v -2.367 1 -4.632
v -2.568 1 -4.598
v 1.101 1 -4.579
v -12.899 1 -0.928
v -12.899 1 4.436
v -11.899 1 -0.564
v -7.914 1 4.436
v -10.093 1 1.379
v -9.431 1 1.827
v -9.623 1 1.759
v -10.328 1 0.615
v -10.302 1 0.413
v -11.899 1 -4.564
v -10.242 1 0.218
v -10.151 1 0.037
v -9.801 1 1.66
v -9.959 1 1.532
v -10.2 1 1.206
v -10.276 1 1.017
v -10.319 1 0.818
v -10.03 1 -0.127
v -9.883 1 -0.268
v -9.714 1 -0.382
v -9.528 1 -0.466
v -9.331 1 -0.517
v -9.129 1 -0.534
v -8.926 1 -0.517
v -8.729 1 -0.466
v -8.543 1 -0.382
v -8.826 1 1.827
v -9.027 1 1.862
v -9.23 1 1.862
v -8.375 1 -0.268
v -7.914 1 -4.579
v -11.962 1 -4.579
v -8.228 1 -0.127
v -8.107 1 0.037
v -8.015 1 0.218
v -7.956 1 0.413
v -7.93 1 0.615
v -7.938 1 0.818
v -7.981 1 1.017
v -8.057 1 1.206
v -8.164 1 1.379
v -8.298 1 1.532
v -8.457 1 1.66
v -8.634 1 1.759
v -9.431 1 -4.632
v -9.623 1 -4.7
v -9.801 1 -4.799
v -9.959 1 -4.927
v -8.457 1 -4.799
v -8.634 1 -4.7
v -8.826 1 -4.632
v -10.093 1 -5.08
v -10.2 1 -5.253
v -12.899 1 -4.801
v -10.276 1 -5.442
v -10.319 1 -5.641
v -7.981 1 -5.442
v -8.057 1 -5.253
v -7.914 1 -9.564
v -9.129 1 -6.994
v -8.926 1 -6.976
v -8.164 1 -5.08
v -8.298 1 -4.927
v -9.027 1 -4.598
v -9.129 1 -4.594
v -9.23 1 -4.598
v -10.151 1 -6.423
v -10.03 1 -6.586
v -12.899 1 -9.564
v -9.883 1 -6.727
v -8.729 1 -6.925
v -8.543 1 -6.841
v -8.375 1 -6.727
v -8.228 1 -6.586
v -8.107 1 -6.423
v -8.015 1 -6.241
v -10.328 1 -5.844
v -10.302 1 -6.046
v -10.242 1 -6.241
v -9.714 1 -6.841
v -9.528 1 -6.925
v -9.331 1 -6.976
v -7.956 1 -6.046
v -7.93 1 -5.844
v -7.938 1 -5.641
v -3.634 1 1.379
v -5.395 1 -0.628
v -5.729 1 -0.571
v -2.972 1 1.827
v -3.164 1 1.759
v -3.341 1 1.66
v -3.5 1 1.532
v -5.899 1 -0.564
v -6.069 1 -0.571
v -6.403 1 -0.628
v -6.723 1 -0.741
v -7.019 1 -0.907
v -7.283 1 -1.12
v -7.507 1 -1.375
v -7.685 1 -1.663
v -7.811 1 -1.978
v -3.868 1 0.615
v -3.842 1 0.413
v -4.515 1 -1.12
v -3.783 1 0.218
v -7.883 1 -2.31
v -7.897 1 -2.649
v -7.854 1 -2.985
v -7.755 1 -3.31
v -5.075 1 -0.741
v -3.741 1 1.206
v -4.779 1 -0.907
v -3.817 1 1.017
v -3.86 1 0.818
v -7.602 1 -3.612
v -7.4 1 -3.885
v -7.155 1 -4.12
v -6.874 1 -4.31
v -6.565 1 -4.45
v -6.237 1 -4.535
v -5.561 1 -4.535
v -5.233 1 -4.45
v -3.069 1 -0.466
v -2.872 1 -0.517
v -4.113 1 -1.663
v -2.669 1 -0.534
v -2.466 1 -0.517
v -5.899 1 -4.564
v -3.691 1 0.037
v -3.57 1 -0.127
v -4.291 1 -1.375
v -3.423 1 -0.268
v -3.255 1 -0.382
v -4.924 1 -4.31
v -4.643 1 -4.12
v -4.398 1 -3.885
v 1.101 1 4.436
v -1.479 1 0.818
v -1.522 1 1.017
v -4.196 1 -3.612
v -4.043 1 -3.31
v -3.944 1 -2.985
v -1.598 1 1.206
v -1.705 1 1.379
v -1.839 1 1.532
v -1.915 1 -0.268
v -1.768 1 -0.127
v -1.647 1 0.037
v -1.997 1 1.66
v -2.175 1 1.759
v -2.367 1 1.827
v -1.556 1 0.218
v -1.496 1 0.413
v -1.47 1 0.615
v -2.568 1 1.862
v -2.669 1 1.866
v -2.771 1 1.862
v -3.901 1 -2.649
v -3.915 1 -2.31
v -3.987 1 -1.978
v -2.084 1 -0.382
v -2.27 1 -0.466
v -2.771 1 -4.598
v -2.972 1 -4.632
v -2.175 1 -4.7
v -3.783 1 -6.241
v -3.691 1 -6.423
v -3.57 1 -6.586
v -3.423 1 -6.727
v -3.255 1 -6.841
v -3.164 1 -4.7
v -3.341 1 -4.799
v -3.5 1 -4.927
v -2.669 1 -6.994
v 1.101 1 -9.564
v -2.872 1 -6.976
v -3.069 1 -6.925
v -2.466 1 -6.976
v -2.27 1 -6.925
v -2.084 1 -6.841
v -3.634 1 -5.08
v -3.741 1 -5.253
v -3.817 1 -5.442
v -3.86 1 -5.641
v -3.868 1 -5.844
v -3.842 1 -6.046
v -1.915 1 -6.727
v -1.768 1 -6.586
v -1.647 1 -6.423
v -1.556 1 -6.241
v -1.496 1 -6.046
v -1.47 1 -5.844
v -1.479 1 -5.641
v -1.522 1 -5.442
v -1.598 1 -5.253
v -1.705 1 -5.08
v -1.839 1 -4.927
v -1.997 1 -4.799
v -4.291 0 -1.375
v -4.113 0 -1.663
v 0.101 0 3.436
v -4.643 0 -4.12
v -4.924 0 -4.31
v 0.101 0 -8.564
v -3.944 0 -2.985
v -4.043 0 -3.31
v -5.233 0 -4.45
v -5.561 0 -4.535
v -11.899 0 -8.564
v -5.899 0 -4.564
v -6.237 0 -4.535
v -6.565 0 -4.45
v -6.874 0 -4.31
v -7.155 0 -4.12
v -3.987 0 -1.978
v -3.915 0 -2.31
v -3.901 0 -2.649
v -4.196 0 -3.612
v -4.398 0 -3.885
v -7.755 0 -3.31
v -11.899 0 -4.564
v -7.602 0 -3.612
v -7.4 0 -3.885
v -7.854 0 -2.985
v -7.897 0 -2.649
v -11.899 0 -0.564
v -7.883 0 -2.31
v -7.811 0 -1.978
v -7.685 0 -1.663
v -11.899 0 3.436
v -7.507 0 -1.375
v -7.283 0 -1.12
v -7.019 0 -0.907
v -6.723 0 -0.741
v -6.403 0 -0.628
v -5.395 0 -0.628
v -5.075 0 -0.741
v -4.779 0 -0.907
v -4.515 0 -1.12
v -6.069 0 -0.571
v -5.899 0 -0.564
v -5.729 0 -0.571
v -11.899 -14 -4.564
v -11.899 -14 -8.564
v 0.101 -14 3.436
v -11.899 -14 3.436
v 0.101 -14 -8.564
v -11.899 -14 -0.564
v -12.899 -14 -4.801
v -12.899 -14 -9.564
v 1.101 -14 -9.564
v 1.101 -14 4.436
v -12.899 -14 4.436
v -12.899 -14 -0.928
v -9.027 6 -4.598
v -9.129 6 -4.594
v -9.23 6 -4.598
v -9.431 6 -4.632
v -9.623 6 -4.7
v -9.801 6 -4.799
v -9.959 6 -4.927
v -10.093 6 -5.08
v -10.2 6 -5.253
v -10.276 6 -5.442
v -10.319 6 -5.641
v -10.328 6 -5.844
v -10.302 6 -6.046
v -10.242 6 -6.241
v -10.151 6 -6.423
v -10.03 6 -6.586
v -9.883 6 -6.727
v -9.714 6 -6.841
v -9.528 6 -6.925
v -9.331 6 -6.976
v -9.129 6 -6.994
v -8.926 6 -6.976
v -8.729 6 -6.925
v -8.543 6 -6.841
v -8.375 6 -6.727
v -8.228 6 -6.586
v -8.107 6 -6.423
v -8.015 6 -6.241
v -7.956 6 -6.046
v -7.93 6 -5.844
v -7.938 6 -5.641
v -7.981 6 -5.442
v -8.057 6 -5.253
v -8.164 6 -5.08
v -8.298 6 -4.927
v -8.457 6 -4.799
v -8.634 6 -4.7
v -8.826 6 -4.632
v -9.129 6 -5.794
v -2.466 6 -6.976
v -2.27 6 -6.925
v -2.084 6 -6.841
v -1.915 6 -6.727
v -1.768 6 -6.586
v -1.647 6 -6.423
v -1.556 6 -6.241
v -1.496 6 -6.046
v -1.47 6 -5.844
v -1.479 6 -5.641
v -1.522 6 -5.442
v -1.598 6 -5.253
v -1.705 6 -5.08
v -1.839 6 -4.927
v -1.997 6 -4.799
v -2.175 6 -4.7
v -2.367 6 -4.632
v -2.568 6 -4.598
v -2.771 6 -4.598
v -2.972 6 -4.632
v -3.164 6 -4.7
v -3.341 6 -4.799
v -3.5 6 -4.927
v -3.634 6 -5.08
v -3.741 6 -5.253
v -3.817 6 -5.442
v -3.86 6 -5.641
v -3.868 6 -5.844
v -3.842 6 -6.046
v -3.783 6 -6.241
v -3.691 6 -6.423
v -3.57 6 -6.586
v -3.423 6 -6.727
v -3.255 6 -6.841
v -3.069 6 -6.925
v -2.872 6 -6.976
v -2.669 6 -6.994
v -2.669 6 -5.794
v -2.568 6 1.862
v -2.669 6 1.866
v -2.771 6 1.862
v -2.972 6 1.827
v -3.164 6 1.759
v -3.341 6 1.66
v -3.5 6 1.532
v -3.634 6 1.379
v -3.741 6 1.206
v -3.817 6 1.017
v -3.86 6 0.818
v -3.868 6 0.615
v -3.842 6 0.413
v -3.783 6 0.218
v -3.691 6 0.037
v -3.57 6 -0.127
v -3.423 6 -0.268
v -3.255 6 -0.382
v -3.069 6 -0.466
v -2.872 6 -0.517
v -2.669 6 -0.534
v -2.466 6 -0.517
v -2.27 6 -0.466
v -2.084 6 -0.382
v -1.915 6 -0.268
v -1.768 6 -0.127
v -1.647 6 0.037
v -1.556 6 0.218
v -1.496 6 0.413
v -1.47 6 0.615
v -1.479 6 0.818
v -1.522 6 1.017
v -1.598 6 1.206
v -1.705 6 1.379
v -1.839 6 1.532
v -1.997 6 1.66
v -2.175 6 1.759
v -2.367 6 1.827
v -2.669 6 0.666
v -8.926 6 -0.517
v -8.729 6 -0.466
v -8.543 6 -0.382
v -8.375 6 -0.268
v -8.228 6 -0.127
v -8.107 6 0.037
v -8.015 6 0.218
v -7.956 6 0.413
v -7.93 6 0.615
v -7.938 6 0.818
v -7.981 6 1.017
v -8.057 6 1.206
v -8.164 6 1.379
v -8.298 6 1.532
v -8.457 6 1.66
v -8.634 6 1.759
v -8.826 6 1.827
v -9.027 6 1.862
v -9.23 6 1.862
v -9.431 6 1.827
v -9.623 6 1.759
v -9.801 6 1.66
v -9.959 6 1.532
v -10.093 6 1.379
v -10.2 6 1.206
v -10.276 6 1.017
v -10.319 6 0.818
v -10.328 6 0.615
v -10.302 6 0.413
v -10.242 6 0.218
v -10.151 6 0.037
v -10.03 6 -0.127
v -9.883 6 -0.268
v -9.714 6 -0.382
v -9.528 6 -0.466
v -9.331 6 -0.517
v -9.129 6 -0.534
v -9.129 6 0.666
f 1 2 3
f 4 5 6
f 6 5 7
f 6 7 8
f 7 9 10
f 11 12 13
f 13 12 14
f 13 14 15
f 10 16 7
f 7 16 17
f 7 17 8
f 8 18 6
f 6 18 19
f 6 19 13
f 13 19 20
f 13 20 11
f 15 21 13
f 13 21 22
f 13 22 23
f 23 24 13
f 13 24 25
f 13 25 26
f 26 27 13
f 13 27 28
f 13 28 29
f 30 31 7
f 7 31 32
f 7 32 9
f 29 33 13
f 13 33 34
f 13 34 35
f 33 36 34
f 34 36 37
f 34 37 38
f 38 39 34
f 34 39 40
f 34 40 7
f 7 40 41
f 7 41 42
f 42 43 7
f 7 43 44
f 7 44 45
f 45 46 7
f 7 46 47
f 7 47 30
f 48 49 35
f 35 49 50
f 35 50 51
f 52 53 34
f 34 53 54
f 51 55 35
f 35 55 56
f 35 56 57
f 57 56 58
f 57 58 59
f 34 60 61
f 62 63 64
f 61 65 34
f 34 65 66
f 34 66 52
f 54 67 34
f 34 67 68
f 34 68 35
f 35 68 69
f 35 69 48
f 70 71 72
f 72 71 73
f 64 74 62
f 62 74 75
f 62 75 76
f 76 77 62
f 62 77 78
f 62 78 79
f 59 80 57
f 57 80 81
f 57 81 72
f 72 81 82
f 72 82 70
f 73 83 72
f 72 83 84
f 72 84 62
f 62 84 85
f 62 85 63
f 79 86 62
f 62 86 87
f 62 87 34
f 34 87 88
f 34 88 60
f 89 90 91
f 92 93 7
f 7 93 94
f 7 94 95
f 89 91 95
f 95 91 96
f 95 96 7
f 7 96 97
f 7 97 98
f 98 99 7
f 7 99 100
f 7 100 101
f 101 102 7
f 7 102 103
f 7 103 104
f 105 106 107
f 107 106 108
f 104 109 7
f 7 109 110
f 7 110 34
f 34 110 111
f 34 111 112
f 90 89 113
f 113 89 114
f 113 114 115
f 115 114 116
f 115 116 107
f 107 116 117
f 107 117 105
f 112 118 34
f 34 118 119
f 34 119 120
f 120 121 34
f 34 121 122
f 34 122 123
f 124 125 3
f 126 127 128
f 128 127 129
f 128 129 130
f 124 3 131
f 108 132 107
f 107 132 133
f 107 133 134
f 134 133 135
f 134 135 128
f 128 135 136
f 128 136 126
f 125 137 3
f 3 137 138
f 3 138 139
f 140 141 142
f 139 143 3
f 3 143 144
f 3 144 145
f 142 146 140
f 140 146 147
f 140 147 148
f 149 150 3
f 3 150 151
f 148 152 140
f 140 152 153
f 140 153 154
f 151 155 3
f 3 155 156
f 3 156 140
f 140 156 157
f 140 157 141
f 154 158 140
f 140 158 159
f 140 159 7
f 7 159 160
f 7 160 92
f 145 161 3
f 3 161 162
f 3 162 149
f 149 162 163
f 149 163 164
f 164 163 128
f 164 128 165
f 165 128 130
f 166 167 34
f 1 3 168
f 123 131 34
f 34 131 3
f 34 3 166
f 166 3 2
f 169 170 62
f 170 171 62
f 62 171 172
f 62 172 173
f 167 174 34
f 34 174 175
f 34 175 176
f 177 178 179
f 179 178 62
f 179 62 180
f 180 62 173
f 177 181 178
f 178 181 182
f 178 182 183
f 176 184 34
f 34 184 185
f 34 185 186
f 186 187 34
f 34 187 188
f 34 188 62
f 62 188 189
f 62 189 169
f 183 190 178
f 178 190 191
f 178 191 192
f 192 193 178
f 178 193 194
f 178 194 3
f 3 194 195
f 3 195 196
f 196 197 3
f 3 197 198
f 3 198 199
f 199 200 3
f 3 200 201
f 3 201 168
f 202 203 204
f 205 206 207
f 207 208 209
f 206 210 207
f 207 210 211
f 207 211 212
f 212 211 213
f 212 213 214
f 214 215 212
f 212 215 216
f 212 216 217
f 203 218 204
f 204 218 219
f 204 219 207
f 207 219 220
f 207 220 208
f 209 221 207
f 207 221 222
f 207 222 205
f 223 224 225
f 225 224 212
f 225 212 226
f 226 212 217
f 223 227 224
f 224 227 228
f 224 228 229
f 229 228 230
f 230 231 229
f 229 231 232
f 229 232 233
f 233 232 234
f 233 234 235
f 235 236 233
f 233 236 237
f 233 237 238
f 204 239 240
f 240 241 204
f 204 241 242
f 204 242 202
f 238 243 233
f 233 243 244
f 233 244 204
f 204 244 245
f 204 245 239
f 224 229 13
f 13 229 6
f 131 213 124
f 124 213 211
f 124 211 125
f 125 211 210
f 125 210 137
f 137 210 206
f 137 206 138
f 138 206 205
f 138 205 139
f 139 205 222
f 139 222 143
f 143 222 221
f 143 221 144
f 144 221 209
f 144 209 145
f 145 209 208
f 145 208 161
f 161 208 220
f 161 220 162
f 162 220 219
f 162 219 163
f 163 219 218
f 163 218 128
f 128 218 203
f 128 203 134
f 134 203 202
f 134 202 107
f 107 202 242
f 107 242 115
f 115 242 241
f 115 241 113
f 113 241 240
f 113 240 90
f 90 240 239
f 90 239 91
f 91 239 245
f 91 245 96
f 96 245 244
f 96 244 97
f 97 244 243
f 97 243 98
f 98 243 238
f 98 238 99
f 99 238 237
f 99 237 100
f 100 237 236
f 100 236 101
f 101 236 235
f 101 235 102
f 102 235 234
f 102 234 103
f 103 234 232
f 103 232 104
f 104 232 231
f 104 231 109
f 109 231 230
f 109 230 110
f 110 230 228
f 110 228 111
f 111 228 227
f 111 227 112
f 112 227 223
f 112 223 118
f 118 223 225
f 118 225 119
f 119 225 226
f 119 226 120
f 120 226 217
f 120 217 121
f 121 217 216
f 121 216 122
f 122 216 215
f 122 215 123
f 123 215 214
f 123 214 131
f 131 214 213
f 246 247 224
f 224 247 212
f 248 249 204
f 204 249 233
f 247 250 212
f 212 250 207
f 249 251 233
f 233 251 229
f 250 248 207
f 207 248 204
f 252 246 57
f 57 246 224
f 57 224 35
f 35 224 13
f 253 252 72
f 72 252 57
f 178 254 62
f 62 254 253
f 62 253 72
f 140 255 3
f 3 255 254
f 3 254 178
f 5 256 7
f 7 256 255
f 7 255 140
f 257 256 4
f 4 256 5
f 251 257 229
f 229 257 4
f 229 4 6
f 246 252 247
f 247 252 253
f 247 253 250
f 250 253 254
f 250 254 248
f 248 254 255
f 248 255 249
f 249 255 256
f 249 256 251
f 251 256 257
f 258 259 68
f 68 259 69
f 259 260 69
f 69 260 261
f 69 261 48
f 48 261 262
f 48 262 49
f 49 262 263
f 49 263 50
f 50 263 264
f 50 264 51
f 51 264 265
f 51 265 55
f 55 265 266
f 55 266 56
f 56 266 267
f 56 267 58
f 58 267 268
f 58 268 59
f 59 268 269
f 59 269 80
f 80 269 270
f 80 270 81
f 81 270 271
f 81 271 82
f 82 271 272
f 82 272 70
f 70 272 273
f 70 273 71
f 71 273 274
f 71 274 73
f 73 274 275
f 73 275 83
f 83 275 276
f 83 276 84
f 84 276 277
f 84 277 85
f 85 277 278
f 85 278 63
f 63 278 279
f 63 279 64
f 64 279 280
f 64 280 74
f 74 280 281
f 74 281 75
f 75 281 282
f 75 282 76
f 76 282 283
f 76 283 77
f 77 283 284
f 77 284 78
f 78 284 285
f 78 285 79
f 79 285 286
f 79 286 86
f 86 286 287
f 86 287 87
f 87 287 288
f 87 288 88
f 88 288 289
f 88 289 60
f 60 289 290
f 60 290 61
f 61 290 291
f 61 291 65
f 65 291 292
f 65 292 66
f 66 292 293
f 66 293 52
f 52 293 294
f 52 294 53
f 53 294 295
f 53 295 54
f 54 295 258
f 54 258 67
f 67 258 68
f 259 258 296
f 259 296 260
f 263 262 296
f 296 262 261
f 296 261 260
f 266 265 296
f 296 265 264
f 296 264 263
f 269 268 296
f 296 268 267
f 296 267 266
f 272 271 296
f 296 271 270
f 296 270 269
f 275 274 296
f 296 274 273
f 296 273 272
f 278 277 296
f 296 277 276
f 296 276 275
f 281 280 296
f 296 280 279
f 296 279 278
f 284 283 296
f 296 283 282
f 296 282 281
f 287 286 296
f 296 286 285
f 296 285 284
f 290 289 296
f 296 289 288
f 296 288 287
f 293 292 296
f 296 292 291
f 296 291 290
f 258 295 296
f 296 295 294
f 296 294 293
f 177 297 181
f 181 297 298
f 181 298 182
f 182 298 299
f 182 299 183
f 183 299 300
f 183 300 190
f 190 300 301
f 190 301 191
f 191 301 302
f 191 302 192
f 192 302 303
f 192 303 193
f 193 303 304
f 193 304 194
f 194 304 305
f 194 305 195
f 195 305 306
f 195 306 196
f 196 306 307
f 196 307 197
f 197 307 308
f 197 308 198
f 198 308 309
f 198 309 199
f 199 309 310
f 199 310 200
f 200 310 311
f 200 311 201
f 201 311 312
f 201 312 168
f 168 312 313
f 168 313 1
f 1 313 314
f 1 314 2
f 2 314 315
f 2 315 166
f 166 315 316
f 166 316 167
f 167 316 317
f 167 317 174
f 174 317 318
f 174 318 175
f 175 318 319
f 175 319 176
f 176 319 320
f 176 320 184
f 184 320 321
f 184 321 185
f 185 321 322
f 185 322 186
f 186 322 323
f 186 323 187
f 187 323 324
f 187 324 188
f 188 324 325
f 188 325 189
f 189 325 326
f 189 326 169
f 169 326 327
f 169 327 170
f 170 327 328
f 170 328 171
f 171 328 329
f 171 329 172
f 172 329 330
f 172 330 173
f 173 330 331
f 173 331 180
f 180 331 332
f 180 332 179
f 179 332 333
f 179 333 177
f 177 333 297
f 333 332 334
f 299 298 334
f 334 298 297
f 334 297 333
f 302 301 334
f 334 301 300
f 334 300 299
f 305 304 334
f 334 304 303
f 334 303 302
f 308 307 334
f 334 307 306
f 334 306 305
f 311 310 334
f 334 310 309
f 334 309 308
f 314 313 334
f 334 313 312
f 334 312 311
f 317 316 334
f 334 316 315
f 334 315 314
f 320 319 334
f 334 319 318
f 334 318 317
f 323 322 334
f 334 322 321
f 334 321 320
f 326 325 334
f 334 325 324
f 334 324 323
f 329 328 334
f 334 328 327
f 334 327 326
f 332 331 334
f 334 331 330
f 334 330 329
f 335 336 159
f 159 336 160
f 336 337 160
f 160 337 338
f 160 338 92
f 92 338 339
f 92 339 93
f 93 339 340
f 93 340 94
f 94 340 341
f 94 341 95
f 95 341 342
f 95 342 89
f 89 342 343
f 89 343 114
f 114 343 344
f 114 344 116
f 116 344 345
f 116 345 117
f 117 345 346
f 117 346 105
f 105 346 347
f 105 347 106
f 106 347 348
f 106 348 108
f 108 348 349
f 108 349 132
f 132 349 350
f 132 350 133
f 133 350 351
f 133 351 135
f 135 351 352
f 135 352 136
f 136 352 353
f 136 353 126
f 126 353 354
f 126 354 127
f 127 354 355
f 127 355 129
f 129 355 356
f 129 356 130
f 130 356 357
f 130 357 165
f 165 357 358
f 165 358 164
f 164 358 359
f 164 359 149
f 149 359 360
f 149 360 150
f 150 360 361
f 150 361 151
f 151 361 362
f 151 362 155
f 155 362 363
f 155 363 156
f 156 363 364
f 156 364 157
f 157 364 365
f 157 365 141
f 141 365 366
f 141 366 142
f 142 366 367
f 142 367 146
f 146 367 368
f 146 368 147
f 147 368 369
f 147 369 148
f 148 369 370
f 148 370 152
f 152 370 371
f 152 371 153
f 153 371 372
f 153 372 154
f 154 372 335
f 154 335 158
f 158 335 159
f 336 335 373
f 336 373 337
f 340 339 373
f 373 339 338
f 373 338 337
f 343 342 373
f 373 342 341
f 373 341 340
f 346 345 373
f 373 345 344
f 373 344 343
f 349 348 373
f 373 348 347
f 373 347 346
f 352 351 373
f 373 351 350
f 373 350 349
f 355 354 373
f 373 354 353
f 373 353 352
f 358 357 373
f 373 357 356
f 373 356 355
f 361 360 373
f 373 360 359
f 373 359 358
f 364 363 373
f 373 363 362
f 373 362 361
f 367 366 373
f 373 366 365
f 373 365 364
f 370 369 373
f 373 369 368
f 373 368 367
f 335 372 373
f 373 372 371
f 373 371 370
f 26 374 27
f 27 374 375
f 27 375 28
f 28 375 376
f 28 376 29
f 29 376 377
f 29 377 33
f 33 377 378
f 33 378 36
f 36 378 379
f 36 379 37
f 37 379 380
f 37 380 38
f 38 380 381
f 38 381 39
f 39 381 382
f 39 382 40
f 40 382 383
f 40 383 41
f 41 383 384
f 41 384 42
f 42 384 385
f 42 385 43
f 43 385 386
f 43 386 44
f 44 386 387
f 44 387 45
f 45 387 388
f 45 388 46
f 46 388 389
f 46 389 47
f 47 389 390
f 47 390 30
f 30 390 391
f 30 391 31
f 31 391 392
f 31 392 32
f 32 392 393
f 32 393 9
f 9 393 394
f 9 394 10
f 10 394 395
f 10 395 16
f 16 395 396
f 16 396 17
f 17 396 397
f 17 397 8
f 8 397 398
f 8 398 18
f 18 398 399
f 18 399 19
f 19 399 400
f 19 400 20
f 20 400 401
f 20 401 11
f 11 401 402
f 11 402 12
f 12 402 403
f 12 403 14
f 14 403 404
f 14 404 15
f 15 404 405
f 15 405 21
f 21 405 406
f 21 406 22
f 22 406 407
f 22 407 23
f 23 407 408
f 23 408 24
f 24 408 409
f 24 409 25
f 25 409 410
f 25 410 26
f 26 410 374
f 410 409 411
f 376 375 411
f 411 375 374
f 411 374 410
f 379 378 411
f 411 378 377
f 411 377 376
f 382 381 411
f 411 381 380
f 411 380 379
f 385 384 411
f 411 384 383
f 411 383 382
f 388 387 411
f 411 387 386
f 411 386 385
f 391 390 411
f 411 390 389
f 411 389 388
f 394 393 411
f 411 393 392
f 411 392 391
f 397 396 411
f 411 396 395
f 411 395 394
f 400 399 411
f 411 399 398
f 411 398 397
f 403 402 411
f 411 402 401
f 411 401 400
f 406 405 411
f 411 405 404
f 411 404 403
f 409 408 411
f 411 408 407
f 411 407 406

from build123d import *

# Parameters (mm, degrees)
SKETCH1_W           = 12
SKETCH1_H           = 12
SKETCH1_R           = 2
BOSS_EXTRUDE2_DEPTH = 1
BOSS_EXTRUDE5_DEPTH = 15
SKETCH4_R           = 1.2
BOSS_EXTRUDE6_DEPTH = 5


with BuildPart() as part:
    # Sketch1 → Boss-Extrude2 (new body)
    with BuildSketch(Plane(origin=(0, 0, 0), x_dir=(1, 0, 0), z_dir=(0, 1, 0))):
        with Locations((-5.898996881, 2.563822752)):
            Rectangle(SKETCH1_W, SKETCH1_H)
        with Locations((-5.898996881, 2.563822752)):
            Circle(SKETCH1_R, mode=Mode.SUBTRACT)
    extrude(amount=BOSS_EXTRUDE2_DEPTH)

    # Sketch3 → Boss-Extrude5 (add)
    with BuildSketch(Plane(origin=(0, 1, 0), x_dir=(1, 0, 0), z_dir=(0, 1, 0))):
        Polygon((-12.898996881, -4.436177248), (-12.898996881, 0.92811169), (-11.898996881, 0.563822752), (-11.898996881, -3.436177248), (0.101003119, -3.436177248), (0.101003119, 8.563822752), (-11.898996881, 8.563822752), (-11.898996881, 4.563822752), (-12.898996881, 4.800920569), (-12.898996881, 9.563822752), (1.101003119, 9.563822752), (1.101003119, -4.436177248), align=None)
    extrude(amount=-BOSS_EXTRUDE5_DEPTH)

    # Sketch4 → Boss-Extrude6 (add)
    with BuildSketch(Plane(origin=(0, 1, 0), x_dir=(1, 0, 0), z_dir=(0, 1, 0))):
        with Locations((-9.128696242, 5.793522112)):
            Circle(SKETCH4_R)
        with Locations((-2.66929752, 5.793522112)):
            Circle(SKETCH4_R)
        with Locations((-2.66929752, -0.665876609)):
            Circle(SKETCH4_R)
        with Locations((-9.128696242, -0.665876609)):
            Circle(SKETCH4_R)
    extrude(amount=BOSS_EXTRUDE6_DEPTH)


solid = part.part
